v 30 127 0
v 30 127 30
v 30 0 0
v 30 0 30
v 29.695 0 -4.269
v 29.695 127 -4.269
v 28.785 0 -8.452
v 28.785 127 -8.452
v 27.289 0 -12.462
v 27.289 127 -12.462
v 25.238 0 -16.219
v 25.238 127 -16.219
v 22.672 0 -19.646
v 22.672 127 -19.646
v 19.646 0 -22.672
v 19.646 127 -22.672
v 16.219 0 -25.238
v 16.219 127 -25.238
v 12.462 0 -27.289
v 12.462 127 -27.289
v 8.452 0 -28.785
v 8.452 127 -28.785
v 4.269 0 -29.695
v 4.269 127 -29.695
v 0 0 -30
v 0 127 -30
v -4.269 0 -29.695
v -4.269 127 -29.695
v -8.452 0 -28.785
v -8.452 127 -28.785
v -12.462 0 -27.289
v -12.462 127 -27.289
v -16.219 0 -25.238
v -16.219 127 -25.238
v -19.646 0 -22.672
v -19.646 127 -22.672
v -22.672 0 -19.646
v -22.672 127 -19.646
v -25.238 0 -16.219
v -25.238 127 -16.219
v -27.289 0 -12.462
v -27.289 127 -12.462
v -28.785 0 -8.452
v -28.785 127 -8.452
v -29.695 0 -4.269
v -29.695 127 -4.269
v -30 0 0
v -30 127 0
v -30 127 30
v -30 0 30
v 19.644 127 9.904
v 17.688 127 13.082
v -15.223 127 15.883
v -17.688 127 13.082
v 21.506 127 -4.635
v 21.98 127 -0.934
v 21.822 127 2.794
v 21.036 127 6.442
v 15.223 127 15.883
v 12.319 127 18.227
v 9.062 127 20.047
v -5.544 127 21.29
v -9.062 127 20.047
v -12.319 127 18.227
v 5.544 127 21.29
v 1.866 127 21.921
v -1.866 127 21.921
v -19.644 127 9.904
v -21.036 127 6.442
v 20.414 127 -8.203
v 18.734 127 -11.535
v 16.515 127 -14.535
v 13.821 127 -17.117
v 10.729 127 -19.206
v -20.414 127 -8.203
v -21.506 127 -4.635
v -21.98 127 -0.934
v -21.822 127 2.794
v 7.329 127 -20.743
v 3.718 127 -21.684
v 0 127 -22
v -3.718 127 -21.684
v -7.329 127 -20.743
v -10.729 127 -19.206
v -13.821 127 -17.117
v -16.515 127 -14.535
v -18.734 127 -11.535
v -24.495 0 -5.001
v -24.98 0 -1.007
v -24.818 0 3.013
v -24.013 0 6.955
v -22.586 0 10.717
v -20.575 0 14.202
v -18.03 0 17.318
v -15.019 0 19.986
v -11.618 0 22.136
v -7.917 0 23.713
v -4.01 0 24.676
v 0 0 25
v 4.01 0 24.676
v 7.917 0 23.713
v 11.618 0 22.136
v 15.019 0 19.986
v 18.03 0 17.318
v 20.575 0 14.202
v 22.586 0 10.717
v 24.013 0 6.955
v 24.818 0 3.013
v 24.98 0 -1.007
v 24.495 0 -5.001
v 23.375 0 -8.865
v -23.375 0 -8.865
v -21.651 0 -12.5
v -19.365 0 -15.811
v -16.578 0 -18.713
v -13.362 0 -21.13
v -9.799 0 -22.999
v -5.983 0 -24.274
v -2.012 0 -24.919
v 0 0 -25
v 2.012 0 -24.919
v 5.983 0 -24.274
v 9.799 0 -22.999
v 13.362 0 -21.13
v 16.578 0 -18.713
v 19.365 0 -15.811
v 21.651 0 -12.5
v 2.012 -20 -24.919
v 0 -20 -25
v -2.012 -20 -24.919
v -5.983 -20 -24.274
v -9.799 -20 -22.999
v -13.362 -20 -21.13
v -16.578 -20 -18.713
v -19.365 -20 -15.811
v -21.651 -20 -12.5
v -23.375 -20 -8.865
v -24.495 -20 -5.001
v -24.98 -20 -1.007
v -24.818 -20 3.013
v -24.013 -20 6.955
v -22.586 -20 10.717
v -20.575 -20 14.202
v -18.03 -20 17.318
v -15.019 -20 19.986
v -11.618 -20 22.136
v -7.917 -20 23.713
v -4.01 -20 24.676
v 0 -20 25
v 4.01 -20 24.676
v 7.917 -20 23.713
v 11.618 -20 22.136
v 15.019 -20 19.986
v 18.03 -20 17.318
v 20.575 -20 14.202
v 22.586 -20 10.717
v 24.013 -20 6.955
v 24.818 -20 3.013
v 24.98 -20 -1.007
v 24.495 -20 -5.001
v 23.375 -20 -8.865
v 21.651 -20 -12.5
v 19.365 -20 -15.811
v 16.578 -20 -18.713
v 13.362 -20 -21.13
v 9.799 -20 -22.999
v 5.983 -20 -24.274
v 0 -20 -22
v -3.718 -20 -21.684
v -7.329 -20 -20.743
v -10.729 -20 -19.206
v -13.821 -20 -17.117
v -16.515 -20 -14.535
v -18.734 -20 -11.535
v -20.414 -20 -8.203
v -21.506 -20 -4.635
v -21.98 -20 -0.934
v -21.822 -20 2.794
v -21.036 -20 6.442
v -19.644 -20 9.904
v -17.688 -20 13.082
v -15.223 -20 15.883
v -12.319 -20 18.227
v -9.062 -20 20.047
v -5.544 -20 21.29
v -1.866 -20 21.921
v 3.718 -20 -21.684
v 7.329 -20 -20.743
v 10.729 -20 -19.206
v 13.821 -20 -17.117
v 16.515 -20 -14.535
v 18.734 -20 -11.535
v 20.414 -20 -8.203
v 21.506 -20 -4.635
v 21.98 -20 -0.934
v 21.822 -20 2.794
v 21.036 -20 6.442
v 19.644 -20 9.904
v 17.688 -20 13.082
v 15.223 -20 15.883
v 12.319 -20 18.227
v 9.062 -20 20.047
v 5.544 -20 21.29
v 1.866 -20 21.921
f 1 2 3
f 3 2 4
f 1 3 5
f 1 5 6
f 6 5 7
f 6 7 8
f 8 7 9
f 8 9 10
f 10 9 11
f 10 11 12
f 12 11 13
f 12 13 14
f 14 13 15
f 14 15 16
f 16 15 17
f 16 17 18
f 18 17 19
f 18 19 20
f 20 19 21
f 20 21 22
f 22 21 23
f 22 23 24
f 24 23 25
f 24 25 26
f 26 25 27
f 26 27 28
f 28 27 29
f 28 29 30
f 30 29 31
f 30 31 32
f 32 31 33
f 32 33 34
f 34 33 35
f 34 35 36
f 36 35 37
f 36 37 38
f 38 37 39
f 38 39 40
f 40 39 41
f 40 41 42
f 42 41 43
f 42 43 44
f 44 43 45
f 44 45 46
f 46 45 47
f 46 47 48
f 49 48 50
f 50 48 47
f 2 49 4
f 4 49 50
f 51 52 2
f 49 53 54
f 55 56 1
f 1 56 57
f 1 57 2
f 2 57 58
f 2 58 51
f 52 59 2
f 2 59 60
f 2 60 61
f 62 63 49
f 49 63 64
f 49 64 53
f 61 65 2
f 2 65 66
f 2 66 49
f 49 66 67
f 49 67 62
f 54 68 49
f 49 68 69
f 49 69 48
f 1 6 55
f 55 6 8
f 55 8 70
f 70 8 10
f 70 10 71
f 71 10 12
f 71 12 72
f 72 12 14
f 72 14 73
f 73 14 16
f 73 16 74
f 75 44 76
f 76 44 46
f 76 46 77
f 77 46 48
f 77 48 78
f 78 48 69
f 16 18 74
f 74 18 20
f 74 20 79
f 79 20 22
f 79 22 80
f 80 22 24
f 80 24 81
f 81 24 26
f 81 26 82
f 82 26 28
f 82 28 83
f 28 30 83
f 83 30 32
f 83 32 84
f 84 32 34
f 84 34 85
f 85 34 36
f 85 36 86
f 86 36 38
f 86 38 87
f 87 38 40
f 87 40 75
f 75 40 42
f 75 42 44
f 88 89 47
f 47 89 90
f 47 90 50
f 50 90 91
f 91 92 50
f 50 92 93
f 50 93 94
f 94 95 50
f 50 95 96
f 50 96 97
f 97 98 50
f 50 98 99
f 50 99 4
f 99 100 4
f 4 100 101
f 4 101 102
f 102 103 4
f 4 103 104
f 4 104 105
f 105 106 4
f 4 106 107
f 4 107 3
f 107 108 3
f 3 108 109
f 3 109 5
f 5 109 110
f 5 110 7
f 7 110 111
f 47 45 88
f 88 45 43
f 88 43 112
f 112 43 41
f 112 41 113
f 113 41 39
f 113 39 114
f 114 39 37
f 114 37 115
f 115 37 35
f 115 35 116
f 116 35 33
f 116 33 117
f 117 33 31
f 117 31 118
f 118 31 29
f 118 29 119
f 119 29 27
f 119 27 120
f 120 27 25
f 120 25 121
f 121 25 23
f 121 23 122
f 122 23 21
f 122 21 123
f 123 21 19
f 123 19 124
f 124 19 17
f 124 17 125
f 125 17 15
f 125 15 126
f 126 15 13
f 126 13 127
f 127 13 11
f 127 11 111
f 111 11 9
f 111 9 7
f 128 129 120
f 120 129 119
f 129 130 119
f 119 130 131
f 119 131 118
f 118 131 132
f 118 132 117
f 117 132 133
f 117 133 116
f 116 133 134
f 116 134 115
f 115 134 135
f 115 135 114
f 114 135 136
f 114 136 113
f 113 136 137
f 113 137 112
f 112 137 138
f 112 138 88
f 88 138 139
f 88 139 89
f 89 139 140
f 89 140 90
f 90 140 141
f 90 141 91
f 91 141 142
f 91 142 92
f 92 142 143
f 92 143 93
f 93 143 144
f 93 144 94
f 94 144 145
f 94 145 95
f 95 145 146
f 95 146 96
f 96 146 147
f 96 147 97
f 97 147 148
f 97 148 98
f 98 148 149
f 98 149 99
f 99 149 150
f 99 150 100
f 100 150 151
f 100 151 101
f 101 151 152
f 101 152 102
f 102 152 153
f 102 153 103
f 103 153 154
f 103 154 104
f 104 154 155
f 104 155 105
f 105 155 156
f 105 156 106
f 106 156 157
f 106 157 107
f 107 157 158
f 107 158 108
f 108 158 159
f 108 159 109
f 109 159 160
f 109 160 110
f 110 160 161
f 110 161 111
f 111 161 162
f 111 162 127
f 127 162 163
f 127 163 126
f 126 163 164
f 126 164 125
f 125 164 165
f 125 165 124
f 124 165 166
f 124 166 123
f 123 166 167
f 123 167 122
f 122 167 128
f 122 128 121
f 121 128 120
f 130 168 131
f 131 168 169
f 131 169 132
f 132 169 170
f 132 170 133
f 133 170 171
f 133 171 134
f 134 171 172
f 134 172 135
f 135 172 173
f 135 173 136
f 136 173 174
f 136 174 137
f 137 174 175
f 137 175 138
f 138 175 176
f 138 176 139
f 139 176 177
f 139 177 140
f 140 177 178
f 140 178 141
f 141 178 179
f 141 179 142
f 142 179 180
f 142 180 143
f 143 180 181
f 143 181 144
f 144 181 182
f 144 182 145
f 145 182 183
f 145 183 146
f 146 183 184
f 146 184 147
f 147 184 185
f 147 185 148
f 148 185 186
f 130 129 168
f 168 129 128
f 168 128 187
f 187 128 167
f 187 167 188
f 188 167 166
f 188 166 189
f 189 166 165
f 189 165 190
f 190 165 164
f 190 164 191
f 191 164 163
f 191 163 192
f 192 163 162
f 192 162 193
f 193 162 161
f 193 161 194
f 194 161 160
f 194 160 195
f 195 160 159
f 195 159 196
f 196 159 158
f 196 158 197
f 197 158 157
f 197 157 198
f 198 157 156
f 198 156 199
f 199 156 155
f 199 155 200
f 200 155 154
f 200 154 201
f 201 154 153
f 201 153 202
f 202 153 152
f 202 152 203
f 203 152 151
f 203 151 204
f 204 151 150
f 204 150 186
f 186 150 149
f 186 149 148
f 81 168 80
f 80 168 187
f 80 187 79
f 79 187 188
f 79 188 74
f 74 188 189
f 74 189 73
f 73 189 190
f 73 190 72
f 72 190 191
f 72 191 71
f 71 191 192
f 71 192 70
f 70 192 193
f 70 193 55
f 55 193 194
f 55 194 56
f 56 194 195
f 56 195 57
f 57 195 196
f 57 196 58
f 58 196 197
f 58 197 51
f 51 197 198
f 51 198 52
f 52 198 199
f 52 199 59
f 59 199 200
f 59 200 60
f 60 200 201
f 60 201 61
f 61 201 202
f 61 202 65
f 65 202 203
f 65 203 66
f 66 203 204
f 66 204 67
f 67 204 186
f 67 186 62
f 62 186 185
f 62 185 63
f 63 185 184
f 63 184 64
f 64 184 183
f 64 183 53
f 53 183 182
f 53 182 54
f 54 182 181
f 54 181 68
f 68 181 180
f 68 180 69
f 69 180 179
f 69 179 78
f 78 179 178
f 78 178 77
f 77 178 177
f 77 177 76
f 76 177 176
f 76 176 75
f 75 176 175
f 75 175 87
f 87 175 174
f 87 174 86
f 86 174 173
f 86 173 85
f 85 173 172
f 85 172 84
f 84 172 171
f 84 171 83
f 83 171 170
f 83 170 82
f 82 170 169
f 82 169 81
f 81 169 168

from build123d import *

# Parameters (mm, degrees)
BOSS_EXTRUDE1_DEPTH = 127
SKETCH3_R           = 25
BOSS_EXTRUDE2_DEPTH = 20
SKETCH4_R           = 22
CUT_EXTRUDE2_DEPTH  = 148


with BuildPart() as part:
    # Sketch1 → Boss-Extrude1 (new body)
    with BuildSketch(Plane(origin=(0, 0, 0), x_dir=(1, 0, 0), z_dir=(0, 1, 0))):
        with BuildLine():
            Line((-30, 0), (-30, -30))
            Line((-30, -30), (30, -30))
            Line((30, -30), (30, 0))
            ThreePointArc((30, 0), (0, 30), (-30, 0))
        make_face()
    extrude(amount=BOSS_EXTRUDE1_DEPTH)

    # Sketch3 → Boss-Extrude2 (add)
    with BuildSketch(Plane(origin=(0, 0, 0), x_dir=(-1, 0, 0), z_dir=(0, -1, 0))):
        Circle(SKETCH3_R)
    extrude(amount=BOSS_EXTRUDE2_DEPTH)

    # Sketch4 → Cut-Extrude2 (cut, through all)
    with BuildSketch(Plane(origin=(0, -20, 0), x_dir=(-1, 0, 0), z_dir=(0, -1, 0))):
        Circle(SKETCH4_R)
    extrude(amount=-CUT_EXTRUDE2_DEPTH, mode=Mode.SUBTRACT)


solid = part.part
